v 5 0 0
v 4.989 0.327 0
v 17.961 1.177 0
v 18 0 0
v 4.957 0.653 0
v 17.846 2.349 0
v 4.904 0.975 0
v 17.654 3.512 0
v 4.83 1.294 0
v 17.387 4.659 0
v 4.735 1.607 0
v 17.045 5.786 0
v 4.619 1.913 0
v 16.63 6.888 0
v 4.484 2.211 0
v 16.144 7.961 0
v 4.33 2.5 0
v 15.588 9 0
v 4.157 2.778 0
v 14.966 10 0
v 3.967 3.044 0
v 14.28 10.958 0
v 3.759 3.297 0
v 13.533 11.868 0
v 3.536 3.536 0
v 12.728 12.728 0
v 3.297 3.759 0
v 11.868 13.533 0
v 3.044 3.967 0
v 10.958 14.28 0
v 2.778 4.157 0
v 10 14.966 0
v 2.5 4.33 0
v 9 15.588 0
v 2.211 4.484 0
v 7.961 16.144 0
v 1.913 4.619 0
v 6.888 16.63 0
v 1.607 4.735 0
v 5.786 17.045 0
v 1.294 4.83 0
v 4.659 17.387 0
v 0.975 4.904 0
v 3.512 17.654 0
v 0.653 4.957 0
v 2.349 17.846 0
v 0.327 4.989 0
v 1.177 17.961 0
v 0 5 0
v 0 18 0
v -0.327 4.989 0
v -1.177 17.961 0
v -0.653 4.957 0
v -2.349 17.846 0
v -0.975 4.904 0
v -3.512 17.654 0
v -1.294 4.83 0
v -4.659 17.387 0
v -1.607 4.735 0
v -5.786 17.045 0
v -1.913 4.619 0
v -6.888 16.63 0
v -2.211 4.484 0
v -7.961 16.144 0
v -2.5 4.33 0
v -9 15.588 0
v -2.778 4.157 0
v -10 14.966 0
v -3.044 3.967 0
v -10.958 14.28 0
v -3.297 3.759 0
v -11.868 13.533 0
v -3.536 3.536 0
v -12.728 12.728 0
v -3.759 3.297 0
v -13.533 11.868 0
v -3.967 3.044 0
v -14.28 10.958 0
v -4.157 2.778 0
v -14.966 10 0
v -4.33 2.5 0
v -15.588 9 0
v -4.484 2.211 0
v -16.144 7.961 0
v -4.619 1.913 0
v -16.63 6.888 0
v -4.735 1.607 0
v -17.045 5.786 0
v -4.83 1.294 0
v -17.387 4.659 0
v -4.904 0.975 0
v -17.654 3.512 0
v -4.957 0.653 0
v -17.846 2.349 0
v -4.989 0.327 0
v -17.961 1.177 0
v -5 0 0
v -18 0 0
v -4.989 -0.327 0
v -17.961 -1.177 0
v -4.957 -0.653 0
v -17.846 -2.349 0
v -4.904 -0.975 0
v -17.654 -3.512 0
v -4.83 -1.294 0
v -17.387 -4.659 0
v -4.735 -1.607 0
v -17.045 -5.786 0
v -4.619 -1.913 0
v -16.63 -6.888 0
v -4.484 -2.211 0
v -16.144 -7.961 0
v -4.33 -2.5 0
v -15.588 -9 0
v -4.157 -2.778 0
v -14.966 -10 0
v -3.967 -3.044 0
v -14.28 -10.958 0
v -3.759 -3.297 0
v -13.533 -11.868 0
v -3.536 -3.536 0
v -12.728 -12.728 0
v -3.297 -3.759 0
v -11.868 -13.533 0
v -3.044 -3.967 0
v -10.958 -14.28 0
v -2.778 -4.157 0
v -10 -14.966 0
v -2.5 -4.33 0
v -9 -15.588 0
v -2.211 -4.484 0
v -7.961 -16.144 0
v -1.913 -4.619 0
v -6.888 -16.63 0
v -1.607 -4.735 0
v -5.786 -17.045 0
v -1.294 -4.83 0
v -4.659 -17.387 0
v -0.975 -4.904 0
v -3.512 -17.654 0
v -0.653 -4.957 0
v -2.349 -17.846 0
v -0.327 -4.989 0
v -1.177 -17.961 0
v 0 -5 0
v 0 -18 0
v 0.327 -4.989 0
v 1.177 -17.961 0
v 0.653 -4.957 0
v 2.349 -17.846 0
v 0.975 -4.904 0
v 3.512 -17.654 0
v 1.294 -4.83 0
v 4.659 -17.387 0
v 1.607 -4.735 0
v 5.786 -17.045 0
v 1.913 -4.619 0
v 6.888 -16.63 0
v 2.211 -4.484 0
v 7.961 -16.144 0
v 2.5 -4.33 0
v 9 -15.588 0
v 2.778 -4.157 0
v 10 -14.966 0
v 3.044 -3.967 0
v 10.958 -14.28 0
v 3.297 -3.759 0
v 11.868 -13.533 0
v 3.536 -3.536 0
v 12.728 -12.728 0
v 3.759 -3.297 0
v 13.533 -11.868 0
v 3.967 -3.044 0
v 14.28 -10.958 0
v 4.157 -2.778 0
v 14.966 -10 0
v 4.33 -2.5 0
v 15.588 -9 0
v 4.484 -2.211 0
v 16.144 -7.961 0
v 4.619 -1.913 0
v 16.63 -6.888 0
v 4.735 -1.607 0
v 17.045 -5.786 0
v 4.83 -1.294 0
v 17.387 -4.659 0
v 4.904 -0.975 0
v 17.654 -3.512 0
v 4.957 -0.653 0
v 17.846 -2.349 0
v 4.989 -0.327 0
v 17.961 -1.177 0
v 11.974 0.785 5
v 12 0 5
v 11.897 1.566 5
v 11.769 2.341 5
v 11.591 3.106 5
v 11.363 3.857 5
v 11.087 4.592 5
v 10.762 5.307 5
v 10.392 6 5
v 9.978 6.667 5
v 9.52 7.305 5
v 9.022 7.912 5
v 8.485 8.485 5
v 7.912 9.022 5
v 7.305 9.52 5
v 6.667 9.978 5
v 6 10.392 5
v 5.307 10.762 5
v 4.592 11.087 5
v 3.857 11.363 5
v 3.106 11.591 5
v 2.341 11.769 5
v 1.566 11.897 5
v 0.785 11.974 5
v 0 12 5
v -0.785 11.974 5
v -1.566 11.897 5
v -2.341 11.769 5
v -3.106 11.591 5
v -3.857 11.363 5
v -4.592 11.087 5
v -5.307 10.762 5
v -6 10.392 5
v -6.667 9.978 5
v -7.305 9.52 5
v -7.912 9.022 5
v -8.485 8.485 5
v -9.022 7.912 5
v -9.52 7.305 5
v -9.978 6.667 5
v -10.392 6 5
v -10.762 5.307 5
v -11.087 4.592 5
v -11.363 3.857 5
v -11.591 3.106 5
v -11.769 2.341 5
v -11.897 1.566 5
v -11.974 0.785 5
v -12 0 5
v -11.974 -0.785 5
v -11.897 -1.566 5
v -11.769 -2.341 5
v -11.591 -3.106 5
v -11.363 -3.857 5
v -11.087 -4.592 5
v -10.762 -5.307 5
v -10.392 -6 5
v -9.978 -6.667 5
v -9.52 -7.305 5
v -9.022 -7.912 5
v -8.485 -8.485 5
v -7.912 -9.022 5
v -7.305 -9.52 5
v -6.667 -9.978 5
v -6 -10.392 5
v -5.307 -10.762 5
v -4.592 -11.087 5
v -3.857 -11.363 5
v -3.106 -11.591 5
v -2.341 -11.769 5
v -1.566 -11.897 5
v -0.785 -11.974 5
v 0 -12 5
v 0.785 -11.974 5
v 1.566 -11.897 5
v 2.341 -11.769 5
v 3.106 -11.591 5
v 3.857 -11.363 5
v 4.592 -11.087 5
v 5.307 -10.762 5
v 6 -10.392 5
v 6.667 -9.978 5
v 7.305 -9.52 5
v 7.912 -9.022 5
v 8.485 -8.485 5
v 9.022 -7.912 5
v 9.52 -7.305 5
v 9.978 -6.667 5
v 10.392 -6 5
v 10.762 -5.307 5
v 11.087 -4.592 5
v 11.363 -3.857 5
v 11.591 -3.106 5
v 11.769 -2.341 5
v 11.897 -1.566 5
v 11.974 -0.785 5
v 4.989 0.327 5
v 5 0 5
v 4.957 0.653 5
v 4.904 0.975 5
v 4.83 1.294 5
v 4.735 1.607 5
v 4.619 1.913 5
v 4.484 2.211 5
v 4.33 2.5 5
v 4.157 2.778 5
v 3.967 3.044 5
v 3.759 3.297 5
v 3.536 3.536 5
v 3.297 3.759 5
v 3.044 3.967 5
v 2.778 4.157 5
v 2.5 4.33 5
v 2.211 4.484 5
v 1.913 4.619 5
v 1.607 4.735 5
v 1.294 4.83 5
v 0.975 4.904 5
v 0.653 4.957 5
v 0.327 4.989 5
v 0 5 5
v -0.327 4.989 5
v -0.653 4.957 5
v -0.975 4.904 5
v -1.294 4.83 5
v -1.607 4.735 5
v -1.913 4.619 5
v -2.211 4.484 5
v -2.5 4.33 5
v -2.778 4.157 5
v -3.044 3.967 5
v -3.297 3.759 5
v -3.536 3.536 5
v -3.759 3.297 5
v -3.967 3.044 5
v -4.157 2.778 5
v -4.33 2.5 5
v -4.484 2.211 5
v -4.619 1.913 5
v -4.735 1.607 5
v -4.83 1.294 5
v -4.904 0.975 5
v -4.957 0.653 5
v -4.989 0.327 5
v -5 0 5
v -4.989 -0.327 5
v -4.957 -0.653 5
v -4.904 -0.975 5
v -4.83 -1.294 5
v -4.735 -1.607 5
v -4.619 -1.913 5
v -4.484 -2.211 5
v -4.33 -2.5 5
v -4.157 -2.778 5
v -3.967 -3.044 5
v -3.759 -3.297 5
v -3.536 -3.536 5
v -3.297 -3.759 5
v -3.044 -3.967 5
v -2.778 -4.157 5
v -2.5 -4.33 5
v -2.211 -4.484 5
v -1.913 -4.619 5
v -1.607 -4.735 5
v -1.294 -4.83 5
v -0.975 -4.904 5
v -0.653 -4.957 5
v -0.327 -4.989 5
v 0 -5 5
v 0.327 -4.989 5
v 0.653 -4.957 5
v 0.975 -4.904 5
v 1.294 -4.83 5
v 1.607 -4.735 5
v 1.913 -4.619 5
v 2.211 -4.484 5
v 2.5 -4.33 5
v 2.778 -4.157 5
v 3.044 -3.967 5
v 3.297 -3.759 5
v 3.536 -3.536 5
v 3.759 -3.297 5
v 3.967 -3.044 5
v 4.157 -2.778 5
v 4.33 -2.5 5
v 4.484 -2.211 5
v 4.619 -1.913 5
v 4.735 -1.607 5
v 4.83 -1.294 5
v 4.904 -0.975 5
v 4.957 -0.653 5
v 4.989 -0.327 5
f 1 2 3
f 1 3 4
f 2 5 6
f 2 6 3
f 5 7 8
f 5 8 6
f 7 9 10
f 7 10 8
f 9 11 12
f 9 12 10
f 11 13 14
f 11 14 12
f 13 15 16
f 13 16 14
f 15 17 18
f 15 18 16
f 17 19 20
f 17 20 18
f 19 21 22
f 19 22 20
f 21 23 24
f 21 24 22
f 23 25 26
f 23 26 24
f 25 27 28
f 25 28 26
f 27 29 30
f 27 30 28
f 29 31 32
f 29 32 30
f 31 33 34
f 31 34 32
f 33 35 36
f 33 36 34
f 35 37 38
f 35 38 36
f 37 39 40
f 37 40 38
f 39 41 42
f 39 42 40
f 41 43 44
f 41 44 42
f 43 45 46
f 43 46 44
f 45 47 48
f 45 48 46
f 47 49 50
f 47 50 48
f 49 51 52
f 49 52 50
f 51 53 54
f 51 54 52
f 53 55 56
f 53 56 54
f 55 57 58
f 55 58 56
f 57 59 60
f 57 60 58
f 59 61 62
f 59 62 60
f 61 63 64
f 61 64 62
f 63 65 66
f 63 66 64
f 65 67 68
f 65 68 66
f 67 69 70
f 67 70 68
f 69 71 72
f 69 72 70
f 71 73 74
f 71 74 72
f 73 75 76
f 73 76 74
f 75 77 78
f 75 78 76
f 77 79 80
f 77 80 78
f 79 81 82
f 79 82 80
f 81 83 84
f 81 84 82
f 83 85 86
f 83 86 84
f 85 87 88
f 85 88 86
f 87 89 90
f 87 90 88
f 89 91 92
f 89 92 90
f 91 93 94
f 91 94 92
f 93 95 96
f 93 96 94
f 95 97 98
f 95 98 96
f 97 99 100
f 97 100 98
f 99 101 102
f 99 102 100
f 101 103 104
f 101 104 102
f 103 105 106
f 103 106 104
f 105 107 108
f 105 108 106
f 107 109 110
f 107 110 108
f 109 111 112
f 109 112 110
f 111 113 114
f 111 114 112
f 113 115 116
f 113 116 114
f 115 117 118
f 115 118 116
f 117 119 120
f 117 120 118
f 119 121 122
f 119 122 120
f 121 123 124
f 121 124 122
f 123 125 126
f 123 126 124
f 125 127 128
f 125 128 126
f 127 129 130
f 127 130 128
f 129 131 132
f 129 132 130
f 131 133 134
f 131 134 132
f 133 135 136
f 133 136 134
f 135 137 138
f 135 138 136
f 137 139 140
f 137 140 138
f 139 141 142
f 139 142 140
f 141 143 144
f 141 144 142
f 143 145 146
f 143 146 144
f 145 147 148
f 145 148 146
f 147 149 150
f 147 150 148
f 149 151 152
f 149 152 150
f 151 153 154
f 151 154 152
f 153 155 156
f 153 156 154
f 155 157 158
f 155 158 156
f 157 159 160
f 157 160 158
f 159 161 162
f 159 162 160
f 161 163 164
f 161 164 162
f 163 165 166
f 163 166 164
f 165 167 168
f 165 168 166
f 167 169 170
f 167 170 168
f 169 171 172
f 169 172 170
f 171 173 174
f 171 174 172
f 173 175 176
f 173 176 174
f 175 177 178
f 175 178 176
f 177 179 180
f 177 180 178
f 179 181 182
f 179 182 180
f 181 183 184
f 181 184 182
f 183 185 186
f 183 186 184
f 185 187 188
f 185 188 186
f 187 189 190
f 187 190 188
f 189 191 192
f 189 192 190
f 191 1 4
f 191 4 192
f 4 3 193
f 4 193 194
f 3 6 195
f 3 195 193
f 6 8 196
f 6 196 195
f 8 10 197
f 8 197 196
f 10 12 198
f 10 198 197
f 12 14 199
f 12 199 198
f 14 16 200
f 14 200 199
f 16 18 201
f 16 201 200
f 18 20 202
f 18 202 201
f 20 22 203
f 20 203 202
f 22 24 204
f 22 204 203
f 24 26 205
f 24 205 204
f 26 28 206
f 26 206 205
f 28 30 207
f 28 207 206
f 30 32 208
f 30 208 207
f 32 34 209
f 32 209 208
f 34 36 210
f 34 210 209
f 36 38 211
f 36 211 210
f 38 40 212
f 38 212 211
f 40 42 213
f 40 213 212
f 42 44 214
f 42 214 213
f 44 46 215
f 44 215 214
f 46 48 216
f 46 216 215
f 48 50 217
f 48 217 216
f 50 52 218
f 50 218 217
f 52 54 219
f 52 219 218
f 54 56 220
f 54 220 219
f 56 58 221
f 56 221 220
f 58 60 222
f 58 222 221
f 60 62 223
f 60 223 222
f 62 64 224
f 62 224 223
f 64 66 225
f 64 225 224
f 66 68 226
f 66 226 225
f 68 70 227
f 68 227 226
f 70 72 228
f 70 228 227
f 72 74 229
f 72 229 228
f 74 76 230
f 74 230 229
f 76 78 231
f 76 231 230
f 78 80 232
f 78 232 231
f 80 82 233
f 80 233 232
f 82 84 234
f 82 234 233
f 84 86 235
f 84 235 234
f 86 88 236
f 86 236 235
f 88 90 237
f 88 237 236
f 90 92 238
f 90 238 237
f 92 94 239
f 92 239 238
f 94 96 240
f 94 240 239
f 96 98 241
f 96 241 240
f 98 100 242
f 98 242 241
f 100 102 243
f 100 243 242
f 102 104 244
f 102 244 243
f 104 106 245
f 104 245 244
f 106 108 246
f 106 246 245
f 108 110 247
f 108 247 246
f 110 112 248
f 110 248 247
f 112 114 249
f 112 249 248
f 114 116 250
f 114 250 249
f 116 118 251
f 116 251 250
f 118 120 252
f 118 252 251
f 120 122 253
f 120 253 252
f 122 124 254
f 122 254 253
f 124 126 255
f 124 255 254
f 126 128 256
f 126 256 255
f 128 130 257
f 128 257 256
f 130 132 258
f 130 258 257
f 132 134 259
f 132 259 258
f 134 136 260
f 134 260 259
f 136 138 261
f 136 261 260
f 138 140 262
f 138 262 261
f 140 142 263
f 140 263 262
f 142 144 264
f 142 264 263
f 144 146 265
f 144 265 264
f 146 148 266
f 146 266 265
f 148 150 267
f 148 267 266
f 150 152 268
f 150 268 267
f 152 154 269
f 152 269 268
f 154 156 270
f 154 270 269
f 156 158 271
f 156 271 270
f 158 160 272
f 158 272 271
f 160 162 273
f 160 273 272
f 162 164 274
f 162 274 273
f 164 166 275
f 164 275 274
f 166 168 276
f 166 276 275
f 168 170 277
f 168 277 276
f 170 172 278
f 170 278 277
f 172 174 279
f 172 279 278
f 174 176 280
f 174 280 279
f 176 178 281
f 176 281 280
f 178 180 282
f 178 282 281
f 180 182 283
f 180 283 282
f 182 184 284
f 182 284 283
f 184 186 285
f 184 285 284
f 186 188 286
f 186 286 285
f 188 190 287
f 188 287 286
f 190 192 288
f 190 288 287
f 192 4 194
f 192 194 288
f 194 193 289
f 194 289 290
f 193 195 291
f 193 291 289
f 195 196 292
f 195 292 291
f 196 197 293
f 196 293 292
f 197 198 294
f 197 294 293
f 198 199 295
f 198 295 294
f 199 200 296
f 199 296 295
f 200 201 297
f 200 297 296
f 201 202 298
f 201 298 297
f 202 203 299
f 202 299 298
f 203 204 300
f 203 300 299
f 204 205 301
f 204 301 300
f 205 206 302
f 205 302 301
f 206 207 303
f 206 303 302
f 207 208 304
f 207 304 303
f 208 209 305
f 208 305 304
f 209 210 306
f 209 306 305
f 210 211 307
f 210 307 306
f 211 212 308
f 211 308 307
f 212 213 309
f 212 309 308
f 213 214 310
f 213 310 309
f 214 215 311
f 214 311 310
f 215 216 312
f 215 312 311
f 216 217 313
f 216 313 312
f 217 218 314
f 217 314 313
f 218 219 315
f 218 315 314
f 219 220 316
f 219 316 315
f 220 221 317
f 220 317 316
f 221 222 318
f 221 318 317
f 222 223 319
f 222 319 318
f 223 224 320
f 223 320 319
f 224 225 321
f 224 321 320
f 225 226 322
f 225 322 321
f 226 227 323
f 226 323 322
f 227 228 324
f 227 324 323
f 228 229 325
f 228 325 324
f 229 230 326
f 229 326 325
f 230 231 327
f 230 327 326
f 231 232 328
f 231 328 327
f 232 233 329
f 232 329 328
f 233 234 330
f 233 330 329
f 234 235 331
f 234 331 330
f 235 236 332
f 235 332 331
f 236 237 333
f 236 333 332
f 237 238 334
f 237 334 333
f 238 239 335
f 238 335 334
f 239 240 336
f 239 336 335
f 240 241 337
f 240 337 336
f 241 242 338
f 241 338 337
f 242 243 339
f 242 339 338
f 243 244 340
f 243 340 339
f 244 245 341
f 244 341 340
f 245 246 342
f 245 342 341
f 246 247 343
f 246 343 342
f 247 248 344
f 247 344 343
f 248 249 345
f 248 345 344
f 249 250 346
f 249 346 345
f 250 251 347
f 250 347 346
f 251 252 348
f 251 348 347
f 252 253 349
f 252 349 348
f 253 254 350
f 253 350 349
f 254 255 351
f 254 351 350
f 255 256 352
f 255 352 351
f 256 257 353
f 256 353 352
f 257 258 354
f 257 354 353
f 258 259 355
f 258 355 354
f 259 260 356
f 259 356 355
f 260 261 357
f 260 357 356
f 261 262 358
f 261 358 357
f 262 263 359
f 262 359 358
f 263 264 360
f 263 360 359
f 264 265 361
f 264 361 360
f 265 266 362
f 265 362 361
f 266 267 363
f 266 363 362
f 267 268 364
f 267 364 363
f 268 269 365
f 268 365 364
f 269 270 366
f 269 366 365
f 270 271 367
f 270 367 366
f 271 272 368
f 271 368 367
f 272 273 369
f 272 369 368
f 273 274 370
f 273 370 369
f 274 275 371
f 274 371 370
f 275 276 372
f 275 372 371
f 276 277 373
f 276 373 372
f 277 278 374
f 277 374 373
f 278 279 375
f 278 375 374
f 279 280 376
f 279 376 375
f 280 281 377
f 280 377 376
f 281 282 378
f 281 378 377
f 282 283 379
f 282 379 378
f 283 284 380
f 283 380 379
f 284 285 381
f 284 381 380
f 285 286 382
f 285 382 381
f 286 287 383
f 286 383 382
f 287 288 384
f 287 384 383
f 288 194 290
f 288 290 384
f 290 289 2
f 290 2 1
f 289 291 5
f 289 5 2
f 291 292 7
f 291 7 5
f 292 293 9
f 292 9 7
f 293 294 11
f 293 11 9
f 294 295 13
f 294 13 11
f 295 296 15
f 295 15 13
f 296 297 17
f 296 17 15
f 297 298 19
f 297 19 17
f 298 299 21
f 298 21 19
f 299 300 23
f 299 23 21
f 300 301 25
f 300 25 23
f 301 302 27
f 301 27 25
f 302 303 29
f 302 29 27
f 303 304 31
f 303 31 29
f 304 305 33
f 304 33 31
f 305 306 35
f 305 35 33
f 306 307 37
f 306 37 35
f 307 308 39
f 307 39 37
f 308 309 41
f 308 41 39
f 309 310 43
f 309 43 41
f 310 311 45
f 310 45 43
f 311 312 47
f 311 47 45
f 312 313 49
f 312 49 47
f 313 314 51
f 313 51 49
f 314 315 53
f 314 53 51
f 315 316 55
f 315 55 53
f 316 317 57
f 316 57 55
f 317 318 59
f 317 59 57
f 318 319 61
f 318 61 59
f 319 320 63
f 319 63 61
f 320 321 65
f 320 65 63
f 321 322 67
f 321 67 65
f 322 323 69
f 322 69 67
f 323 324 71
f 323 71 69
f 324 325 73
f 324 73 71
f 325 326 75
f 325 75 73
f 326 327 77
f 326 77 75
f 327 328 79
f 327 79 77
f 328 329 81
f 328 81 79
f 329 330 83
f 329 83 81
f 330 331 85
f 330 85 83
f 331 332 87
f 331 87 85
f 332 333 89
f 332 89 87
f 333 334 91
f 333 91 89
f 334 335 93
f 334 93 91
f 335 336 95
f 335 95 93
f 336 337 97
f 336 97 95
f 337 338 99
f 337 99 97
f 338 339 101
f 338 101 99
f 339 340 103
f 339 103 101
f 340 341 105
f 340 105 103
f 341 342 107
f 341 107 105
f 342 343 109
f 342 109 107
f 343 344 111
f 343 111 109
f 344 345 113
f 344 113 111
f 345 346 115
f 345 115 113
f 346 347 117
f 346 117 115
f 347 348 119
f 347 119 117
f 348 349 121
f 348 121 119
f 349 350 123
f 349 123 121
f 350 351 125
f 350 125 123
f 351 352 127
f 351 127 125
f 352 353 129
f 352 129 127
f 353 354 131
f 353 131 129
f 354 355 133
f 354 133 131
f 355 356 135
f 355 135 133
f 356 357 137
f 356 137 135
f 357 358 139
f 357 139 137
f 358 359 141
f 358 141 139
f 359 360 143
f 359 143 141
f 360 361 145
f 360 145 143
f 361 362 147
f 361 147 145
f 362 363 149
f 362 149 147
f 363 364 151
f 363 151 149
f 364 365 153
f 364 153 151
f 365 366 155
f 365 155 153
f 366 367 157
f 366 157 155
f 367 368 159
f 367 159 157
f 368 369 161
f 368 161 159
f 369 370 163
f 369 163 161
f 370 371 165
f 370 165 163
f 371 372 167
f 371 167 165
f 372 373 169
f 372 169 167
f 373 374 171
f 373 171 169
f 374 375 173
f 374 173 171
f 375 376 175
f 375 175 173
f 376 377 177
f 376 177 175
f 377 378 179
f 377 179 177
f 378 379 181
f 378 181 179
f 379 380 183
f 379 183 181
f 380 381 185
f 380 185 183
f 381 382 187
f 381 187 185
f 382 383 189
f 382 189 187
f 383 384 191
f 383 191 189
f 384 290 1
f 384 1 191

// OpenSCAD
// Original MechIntel educational model. CC0-1.0. Units: mm.
// Not a standardized or load-rated component.
$fn=96;
// Section points: [radius, height], mm. Edit to change the profile.
section=[[5, 0], [18, 0], [12, 5], [5, 5]];
rotate_extrude($fn=96) polygon(points=section);
